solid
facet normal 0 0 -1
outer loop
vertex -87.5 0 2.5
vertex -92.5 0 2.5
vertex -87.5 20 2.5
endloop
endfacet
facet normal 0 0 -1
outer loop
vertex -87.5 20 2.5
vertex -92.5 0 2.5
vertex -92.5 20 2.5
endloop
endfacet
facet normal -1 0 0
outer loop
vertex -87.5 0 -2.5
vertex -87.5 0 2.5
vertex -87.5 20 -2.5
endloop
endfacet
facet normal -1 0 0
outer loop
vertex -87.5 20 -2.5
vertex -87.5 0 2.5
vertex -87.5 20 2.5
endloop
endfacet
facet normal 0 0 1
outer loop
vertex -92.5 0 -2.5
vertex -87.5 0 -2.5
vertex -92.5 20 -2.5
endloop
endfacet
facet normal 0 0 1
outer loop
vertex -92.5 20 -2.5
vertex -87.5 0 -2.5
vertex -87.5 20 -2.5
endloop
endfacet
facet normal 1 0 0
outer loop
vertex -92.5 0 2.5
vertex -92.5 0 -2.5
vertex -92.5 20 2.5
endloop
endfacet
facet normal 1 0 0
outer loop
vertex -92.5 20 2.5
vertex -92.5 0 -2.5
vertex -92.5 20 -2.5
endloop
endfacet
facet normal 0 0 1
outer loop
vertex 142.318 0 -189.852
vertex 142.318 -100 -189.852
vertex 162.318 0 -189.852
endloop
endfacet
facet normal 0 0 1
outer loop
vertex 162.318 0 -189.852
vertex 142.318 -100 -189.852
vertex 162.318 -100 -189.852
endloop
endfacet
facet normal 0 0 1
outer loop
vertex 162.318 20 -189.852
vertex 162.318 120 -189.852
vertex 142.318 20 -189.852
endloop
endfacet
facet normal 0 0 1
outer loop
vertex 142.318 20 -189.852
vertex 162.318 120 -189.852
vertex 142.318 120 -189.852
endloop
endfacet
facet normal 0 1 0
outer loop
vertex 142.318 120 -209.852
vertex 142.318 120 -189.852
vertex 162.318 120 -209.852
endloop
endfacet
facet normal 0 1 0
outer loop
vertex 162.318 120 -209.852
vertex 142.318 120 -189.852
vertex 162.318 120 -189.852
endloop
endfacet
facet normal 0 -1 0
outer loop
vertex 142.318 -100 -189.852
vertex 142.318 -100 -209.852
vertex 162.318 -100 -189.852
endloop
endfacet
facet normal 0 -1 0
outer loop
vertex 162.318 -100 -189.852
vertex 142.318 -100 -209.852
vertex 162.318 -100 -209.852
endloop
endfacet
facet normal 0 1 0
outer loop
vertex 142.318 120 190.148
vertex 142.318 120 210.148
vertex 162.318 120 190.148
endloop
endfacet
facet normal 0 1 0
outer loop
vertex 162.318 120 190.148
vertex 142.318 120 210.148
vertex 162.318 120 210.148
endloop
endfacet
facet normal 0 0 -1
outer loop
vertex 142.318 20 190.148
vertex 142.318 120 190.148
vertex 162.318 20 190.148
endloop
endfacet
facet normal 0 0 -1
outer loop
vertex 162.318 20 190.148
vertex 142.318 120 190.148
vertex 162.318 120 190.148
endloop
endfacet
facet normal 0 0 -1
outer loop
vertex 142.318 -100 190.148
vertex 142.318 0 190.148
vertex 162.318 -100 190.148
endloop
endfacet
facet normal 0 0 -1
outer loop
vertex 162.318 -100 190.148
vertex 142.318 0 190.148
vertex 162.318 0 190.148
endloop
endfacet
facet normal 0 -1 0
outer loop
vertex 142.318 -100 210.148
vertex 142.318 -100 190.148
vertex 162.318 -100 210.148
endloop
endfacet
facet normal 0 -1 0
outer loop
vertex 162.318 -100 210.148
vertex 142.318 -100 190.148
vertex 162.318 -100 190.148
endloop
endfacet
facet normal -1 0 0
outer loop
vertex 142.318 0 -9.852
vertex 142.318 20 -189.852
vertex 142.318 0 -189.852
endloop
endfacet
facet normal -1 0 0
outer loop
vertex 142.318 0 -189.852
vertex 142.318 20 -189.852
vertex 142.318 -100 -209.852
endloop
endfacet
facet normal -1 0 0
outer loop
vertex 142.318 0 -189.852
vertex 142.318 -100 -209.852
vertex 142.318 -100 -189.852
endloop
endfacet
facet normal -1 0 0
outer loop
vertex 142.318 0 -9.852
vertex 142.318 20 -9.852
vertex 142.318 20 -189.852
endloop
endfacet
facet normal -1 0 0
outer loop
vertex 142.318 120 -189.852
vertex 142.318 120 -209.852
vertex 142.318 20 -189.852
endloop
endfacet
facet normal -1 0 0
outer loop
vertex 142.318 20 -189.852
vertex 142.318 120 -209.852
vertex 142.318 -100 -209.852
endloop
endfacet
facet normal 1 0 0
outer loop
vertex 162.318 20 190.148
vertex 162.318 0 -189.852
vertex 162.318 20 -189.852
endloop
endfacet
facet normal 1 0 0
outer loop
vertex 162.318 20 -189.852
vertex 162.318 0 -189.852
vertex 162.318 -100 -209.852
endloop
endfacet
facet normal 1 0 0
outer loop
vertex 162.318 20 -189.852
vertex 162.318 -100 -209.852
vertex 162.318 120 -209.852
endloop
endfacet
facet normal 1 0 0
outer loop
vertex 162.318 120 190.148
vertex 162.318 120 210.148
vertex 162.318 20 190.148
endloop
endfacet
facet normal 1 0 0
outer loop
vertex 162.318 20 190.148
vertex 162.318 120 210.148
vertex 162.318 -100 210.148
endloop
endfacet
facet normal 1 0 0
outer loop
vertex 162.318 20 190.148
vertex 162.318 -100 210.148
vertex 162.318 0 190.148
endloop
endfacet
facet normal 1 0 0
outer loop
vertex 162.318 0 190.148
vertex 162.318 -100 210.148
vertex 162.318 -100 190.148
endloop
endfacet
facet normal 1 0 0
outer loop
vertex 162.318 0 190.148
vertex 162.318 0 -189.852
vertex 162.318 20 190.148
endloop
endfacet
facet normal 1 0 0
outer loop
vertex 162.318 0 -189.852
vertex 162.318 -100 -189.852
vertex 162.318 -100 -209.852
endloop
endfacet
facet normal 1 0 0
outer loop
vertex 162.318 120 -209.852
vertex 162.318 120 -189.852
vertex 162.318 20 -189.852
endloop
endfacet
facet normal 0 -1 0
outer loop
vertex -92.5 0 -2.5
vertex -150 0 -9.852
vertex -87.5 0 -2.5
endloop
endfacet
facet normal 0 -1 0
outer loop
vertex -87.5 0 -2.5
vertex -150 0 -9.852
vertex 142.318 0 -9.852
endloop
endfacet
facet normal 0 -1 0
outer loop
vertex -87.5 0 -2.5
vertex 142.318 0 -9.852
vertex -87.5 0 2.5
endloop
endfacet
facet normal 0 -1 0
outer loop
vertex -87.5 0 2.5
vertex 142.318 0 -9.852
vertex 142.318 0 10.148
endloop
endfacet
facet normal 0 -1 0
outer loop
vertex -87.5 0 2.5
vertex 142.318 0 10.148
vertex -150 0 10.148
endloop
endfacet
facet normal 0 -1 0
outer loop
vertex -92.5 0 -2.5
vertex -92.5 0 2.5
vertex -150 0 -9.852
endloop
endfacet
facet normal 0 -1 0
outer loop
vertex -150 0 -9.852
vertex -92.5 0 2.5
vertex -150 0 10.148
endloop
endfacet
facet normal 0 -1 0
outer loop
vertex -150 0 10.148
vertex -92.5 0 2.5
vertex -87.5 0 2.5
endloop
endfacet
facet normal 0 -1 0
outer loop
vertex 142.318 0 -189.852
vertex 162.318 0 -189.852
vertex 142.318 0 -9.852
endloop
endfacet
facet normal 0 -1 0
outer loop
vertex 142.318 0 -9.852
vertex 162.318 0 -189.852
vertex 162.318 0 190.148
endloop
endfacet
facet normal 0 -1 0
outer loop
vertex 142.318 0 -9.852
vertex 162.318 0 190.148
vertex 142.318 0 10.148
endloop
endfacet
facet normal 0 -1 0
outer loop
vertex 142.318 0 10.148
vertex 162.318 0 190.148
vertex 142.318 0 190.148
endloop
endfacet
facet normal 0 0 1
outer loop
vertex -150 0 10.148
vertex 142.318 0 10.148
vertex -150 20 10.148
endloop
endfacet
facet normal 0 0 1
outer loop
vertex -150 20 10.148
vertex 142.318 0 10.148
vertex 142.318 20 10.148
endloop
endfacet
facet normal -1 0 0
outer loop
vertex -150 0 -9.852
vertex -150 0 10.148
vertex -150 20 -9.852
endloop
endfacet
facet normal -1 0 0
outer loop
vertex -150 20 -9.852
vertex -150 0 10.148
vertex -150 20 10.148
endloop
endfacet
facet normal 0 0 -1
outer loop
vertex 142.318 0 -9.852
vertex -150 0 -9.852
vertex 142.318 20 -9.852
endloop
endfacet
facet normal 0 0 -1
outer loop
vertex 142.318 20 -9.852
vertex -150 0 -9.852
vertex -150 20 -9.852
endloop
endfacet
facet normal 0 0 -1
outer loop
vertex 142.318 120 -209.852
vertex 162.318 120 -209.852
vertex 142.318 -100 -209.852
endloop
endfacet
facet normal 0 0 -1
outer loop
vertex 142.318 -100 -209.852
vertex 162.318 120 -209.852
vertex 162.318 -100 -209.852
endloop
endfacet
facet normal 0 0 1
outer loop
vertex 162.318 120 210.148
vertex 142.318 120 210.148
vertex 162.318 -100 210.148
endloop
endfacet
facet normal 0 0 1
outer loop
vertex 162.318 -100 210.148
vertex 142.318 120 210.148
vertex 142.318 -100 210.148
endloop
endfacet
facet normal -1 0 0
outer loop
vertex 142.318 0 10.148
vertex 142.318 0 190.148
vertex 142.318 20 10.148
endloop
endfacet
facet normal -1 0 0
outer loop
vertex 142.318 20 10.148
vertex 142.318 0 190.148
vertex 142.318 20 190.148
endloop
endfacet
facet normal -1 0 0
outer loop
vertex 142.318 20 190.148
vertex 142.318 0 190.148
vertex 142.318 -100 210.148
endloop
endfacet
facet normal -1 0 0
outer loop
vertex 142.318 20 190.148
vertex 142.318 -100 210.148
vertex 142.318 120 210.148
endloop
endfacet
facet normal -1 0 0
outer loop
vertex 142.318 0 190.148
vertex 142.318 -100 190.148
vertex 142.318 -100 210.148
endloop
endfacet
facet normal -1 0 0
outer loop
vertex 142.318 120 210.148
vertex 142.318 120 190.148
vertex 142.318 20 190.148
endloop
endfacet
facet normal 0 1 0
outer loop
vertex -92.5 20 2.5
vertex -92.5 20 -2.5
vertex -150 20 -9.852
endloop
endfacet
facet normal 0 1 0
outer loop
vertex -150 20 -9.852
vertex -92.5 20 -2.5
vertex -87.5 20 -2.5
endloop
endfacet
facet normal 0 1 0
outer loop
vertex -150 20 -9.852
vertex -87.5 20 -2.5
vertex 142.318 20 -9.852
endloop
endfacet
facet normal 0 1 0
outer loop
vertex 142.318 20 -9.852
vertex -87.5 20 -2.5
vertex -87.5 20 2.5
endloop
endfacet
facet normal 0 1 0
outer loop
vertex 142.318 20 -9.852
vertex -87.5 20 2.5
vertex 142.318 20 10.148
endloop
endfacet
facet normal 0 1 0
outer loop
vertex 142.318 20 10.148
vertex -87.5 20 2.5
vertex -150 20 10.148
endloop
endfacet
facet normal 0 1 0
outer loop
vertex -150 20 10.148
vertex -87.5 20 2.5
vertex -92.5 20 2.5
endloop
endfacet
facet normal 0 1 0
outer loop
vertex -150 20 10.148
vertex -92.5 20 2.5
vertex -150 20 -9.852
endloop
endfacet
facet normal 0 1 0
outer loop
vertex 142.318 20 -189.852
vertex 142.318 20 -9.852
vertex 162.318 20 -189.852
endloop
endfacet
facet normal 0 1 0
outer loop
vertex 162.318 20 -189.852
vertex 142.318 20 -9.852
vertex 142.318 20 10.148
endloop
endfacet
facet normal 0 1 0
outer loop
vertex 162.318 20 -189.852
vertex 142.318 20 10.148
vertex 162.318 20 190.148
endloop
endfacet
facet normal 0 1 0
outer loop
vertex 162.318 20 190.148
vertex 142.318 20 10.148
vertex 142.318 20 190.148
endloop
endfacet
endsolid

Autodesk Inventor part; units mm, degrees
ref_plane "YZ Plane" through (0, 0, 0) normal (1, 0, 0) x (0, 1, 0)
ref_plane "XZ Plane" through (0, 0, 0) normal (0, 1, 0) x (-1, 0, 0)
ref_plane "XY Plane" through (0, 0, 0) normal (0, 0, 1) x (1, 0, 0)
sketch "Sketch2" plane through (0, 0, 0) normal (0, 1, 0) x (-1, 0, 0)
  line L0 (150, 10.1481) -> (-142.3178, 10.1481)
  line L1 (-142.3178, -9.8519) -> (150, -9.8519)
  line L2 (150, -9.8519) -> (150, 10.1481)
  line L3 (-142.3178, 10.1481) -> (-142.3178, 210.1481)
  line L4 (-142.3178, 210.1481) -> (-162.3178, 210.1481)
  line L5 (-162.3178, 210.1481) -> (-162.3178, -209.8519)
  line L6 (-162.3178, -209.8519) -> (-142.3178, -209.8519)
  line L7 (-142.3178, -209.8519) -> (-142.3178, -9.8519)
  point P0 (0, 0)
  dimension "d0" = 20
  dimension "d2" = 150
  dimension "d3" = 200
  dimension "d4" = 420
  dimension "d5" = 20
  dimension "d6" = 292.3178
  dimension "d7" = 20
extrude "Extrusion1" add sketch "Sketch2" along normal blind 20
sketch "Sketch3" plane through (142.3178, 0, -209.8519) normal (-1, 0, 0) x (0, 0, 1)
  line L0 (0, 120) -> (20, 120)
  line L1 (20, 120) -> (20, -100)
  line L2 (20, -100) -> (0, -100)
  line L3 (0, -100) -> (0, 120)
  line L4 (0, 0) -> (200, 0) projected
  line L5 (0, 20) -> (200, 20) projected
  line L6 (420, -100) -> (400, -100)
  line L7 (400, -100) -> (400, 120)
  line L8 (400, 120) -> (420, 120)
  line L9 (420, 120) -> (420, -100)
  line L10 (420, 0) -> (420, 20) projected
  line L11 (220, 0) -> (420, 0) projected
  line L12 (220, 20) -> (420, 20) projected
  point P0 (209.8519, 0)
  point P1 (400, 20)
  point P2 (400, 0)
  dimension "d10" = 100
  dimension "d11" = 100
  dimension "d12" = 20
  dimension "d13" = 20
  dimension "d14" = 0
  dimension "d15" = 100
  dimension "d16" = 100
extrude "Extrusion2" add sketch "Sketch3" against normal blind 20 contours L0 L1 L5 L3 | L5 L1 L4 L3 | L4 L1 L2 L3 | L6 L7 L11 L9 | L12 L7 L8 L9
sketch "Sketch8" plane through (0, 20, 0) normal (0, 1, 0) x (1, 0, 0)
  line L0 (-150, 9.8519) -> (-150, -10.1481) projected
  line L1 (-92.5, -2.5) -> (-87.5, -2.5)
  line L2 (-87.5, -2.5) -> (-87.5, 2.5)
  line L3 (-87.5, 2.5) -> (-92.5, 2.5)
  line L4 (-92.5, 2.5) -> (-92.5, -2.5)
  point P0 (0, 0)
  point P1 (-90, 0)
  point P2 (-150, -0.1481)
  point P3 (-90, -2.5)
  point P4 (-87.5, 0)
  dimension "d36" = 60
  dimension "d37" = 2.5
  dimension "d38" = 5
  dimension "d39" = 5
  dimension "d40" = 2.5
extrude "Extrusion4" cut sketch "Sketch8" against normal through all
properties part number "statyw"
